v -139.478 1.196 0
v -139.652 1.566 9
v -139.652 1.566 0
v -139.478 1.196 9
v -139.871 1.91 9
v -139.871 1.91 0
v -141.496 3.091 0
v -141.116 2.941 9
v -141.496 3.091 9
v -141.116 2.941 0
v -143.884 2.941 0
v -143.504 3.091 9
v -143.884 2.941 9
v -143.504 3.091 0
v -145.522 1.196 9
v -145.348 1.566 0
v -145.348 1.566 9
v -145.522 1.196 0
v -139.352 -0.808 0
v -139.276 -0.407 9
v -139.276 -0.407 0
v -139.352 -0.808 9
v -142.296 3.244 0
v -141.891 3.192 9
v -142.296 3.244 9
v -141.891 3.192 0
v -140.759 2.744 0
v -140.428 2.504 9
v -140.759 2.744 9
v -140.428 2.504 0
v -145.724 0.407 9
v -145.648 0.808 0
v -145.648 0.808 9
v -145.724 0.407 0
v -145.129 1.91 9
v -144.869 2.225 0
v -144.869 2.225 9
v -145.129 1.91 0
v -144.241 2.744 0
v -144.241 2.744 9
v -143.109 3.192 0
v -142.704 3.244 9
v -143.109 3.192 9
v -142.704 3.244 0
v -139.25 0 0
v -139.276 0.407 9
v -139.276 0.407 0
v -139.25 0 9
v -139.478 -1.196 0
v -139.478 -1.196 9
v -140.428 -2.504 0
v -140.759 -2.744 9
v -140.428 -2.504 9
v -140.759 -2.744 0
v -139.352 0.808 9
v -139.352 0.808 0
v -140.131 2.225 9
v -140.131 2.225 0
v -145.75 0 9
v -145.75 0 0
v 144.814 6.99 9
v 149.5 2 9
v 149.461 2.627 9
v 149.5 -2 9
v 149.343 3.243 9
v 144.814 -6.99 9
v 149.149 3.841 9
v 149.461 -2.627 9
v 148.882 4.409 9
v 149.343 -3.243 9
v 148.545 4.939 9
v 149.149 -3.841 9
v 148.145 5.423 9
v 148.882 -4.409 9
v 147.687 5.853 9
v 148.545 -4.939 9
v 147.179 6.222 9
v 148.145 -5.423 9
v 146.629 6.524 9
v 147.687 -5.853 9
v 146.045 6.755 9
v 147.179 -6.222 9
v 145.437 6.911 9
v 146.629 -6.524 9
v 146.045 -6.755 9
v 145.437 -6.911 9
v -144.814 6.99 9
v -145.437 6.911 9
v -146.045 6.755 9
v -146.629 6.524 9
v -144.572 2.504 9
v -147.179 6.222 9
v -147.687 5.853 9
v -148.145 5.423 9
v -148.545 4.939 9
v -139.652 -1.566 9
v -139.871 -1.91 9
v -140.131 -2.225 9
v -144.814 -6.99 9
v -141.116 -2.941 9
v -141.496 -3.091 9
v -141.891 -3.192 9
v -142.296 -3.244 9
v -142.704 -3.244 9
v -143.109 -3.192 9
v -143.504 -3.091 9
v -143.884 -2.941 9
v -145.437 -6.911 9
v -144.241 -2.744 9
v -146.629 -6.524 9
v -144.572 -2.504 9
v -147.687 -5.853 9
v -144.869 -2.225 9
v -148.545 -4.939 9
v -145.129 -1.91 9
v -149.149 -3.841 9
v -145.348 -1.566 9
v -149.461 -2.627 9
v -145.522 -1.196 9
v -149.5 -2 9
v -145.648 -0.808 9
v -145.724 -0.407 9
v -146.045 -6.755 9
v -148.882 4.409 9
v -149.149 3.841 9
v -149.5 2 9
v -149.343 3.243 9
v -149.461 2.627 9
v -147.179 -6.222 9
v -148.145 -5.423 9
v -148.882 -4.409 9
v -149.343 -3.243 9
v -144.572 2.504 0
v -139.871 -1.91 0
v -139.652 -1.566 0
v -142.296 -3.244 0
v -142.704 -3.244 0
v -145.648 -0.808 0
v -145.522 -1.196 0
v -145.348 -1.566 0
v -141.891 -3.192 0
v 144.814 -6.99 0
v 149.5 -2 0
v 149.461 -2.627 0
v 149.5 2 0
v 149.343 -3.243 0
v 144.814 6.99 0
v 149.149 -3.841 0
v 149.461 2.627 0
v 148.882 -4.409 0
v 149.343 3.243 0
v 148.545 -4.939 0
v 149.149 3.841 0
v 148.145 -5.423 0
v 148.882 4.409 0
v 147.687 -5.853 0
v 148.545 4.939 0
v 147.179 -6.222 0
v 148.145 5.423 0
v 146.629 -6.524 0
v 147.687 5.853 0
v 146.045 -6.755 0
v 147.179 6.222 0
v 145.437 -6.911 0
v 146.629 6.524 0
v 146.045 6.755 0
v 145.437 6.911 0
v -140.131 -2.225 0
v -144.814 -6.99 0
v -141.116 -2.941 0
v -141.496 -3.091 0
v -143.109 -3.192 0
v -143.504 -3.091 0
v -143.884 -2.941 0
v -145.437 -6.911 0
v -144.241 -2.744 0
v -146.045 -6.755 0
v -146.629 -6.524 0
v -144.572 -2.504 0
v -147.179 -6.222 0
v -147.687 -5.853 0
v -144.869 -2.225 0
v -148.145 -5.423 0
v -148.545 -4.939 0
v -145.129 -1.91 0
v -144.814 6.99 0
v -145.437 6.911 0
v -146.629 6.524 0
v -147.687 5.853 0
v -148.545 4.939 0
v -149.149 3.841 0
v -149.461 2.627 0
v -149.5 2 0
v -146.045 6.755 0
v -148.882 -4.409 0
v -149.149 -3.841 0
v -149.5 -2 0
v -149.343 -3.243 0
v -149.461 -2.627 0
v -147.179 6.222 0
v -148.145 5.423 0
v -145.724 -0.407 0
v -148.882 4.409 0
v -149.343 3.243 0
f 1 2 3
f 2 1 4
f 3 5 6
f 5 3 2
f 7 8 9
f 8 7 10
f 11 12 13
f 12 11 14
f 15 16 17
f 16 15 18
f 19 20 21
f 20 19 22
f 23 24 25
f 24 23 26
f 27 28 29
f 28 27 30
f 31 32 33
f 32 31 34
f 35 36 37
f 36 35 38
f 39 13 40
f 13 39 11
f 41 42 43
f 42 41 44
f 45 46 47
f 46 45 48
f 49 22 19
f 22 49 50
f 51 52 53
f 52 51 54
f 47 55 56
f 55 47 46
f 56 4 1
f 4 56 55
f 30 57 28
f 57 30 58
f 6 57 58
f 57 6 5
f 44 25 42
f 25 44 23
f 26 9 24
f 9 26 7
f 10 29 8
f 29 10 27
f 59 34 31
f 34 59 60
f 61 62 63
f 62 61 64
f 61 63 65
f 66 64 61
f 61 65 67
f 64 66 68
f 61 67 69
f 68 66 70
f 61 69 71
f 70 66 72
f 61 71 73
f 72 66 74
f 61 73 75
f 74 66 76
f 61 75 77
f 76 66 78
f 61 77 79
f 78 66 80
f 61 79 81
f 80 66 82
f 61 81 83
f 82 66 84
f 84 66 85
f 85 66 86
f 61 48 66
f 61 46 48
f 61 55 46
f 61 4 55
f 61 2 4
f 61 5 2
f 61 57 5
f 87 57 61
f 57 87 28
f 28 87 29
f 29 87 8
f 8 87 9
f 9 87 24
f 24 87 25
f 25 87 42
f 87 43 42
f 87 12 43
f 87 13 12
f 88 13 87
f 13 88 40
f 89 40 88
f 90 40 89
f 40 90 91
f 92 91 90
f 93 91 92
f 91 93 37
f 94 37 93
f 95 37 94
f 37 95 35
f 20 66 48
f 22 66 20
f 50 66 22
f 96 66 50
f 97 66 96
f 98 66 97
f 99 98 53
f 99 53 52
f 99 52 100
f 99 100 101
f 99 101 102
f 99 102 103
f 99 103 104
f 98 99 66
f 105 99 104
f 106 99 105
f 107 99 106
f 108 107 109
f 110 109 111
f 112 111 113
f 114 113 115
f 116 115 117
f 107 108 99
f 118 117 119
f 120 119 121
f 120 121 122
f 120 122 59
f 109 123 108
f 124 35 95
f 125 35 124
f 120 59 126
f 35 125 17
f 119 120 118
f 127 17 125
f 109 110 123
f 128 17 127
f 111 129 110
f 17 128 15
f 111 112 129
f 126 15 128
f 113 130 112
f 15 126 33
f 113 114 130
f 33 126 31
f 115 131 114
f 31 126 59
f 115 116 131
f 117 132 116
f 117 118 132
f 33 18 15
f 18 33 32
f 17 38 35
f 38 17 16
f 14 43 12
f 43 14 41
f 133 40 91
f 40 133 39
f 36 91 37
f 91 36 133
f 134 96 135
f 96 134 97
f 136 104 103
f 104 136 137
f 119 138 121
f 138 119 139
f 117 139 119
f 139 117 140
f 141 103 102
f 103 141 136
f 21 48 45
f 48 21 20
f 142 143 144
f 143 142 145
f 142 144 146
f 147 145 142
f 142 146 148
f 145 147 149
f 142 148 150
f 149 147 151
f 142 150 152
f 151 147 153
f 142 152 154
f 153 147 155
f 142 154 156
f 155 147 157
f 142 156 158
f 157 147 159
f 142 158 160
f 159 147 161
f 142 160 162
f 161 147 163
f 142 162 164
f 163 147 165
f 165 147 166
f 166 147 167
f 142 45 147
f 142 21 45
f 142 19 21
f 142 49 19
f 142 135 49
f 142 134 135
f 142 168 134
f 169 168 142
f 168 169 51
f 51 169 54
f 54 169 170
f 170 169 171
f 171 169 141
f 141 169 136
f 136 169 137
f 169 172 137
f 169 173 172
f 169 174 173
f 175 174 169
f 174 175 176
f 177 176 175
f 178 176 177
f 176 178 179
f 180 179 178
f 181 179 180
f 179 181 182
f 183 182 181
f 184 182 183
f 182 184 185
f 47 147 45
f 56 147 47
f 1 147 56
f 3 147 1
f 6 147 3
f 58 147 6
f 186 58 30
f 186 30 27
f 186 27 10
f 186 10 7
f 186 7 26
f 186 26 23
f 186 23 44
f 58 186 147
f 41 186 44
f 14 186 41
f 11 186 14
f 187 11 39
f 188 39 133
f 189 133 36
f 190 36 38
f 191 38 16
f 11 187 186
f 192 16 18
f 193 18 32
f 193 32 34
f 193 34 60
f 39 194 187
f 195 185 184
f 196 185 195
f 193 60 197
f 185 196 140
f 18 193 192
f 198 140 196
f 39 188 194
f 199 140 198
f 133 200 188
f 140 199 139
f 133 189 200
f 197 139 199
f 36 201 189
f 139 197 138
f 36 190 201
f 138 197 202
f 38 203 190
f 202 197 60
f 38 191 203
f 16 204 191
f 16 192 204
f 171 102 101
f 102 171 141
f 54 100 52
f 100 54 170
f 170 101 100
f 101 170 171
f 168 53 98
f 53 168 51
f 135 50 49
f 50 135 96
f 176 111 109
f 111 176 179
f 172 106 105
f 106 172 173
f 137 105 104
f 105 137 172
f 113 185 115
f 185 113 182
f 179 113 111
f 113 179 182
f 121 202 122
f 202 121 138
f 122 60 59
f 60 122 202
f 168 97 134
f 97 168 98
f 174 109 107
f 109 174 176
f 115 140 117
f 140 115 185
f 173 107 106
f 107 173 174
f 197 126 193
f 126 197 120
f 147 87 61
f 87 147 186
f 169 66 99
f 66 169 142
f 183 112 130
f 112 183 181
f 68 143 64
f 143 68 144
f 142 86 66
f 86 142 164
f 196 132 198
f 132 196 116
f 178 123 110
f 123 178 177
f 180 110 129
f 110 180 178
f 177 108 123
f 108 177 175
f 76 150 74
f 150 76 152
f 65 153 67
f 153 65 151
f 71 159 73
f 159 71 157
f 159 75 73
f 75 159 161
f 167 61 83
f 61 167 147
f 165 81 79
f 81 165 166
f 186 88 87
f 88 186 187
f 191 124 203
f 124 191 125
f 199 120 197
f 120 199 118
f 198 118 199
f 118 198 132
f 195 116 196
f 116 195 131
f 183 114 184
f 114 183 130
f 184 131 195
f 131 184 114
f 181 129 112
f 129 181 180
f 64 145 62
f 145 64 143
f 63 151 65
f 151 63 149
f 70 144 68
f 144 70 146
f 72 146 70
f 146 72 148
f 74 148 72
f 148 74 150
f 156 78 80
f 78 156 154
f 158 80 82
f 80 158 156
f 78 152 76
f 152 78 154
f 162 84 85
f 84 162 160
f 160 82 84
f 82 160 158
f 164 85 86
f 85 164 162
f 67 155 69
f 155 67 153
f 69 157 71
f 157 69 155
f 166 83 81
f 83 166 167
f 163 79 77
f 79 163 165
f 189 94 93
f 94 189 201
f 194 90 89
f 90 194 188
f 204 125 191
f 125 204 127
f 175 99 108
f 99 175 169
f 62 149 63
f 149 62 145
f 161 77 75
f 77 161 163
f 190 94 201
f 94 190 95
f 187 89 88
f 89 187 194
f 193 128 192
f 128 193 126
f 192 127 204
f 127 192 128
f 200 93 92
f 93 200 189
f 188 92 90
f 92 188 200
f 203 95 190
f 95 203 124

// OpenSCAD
$fn = 50;


difference() {
	union() {
		hull() {
			translate(v = [-144.5000000000, 2.0000000000, 0]) {
				cylinder(h = 9, r = 5);
			}
			translate(v = [144.5000000000, 2.0000000000, 0]) {
				cylinder(h = 9, r = 5);
			}
			translate(v = [-144.5000000000, -2.0000000000, 0]) {
				cylinder(h = 9, r = 5);
			}
			translate(v = [144.5000000000, -2.0000000000, 0]) {
				cylinder(h = 9, r = 5);
			}
		}
	}
	union() {
		translate(v = [-142.5000000000, 0.0000000000, 0]) {
			cylinder(h = 9, r = 3.2500000000);
		}
		translate(v = [-142.5000000000, 0.0000000000, 0]) {
			cylinder(h = 9, r = 1.8000000000);
		}
		translate(v = [-142.5000000000, 0.0000000000, 0]) {
			cylinder(h = 9, r = 1.8000000000);
		}
		translate(v = [-142.5000000000, 0.0000000000, 0]) {
			cylinder(h = 9, r = 1.8000000000);
		}
	}
}
